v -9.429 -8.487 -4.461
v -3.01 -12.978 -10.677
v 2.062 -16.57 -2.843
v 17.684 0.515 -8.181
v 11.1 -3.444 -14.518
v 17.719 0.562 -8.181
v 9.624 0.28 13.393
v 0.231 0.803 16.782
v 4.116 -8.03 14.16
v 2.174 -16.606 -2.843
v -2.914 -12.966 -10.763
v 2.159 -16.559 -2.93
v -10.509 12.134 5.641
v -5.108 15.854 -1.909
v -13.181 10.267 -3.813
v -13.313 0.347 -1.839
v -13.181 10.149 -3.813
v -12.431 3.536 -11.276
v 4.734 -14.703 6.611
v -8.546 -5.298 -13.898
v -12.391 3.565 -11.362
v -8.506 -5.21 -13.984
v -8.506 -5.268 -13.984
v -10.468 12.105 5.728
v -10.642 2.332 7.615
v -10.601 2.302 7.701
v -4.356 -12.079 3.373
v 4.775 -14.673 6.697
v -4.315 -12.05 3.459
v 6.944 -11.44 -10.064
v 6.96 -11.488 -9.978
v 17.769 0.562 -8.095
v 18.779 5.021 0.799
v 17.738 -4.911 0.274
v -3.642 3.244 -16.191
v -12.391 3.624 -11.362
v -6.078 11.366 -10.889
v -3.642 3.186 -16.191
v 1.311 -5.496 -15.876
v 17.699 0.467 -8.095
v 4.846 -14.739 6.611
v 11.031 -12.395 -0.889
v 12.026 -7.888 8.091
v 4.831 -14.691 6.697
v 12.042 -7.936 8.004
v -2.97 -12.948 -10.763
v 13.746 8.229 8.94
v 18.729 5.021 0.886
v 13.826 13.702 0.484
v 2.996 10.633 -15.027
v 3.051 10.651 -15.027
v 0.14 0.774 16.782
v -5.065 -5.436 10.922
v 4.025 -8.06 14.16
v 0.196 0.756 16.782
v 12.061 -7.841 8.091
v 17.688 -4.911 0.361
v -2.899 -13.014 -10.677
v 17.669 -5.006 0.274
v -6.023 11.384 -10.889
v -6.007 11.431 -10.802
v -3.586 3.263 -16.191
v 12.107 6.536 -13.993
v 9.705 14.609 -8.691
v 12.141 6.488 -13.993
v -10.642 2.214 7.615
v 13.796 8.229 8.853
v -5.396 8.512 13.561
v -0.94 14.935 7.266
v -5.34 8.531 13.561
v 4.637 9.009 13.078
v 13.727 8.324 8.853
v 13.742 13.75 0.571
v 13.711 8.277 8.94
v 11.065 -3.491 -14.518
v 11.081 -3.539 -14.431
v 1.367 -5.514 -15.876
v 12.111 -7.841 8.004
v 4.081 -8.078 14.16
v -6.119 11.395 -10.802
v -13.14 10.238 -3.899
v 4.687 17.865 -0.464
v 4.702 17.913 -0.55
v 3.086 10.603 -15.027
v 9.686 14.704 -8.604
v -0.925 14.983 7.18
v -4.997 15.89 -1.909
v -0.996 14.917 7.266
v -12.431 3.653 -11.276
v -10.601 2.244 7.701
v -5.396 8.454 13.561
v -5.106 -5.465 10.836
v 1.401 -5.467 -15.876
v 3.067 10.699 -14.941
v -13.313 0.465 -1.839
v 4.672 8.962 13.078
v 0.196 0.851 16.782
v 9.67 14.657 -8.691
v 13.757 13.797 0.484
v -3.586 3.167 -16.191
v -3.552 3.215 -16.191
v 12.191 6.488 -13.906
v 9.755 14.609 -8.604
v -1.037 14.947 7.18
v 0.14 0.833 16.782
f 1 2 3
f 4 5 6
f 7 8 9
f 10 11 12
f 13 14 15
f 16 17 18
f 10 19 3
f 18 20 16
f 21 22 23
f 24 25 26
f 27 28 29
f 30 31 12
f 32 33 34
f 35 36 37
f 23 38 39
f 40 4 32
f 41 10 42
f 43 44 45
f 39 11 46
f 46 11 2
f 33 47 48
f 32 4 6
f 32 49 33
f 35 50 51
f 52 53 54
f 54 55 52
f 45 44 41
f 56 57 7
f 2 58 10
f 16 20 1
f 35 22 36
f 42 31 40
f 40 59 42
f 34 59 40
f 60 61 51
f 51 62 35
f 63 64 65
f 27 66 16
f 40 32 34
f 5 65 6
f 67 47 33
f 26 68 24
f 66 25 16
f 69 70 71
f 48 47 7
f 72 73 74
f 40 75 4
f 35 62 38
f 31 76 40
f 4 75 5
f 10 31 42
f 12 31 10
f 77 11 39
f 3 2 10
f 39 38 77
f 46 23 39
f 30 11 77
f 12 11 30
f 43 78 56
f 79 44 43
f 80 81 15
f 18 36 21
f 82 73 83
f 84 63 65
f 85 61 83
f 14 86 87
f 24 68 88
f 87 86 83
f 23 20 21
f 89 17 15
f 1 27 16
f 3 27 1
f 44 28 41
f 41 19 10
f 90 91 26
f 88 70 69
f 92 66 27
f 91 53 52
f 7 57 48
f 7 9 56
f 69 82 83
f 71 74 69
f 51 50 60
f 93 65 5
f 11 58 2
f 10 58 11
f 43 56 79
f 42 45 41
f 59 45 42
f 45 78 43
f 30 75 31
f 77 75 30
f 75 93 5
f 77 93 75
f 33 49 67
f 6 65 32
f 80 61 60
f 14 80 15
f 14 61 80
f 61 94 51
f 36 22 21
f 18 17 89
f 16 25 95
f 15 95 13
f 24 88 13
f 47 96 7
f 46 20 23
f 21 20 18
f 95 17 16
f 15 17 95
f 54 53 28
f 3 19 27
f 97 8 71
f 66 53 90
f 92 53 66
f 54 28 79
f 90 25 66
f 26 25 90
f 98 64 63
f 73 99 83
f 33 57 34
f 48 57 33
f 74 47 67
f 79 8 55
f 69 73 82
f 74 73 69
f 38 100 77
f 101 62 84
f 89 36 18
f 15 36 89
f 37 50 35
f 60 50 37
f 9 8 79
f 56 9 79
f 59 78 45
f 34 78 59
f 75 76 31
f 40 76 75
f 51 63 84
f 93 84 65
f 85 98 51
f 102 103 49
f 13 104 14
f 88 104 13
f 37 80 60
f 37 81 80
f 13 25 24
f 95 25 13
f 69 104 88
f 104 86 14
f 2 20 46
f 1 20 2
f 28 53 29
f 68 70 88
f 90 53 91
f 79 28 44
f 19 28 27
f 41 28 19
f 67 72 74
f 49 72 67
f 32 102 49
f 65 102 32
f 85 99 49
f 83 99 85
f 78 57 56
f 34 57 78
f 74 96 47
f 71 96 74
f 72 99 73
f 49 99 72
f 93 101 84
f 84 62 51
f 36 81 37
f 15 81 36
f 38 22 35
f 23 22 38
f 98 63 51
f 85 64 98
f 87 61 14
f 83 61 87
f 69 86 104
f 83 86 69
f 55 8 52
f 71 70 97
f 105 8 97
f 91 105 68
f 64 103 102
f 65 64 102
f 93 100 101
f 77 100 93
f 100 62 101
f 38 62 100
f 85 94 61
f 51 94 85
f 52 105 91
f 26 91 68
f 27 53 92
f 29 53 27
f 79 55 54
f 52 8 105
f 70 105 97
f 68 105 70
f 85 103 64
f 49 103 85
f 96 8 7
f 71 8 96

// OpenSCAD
// Auto-generated OpenSCAD file

    inner_points = 10*[[1.1000305201583598, -1.229950875030529, -0.08894189251692455], [-0.5027426604470553, 1.579473909815398, -0.1908558995277139], [-0.846549708488417, -0.523909617402483, -1.3897599911510223], [0.01808376162039204, 0.08034171518490725, 1.6695577831956607], [0.1351283573464456, -0.5466570677439849, -1.5789443683117281], [0.9574436533003191, 0.028020099593282485, 1.3306397363982712], [-0.3601557935890146, 0.3215029351915868, -1.6104375284429095], [0.46215950236485903, 0.8961801025288543, 1.2991465762670897], [0.21433774726042953, -1.6511067907648083, -0.284328705476233], [0.4815241834294346, -1.4643828601215962, 0.6610524779902326], [-1.30999013029746, 1.0208149579040204, -0.3812546859455942], [-1.0428036941284546, 1.2075388885472327, 0.5641264975208714], [0.6928698992905247, -1.139259691273304, -0.9977847491226374], [1.2010887016589473, -0.7840896693003617, 0.8004371207145751], [-0.603800841947643, 1.133612704085231, -1.0802349127592135], [-0.09558203957922018, 1.4887827260581734, 0.7179869570779989], [-0.2929413398808356, -1.2918779775559366, -1.0676693641360977], [0.40656183134257406, -0.8030283806190294, 1.4073707065037098], [-1.2350277782105992, 0.35946047840145373, -1.1275729144590714], [-0.5355246069871895, 0.8483100753383608, 1.347467156180736], [1.766851594949058, 0.056206898787851886, -0.8094846211676406], [0.9654650046463505, 1.4609192912108153, -0.8604416246730354], [1.867909776449646, 0.502068104518019, 0.07989439206385895], [1.3726256255141858, 1.3702281074535907, 0.04840123193267751], [1.209110053004979, 0.6488095223171712, -1.3906442403567312], [1.7637877113705789, -0.4911118899577973, 0.027433986645217595], [0.46711697013241127, 1.781760505400738, -0.05501617699135854], [1.104987987925912, -0.3443704721586452, -1.443104645775373], [0.3036013976232044, 1.0603419202643185, -1.4940616492807675], [1.3695617419357062, 0.8229093187079415, 0.8853198397455359], [-0.9347794463333561, -0.8427966545821481, -0.44608283720557035], [-0.5024627112789515, -0.5406709882884531, 1.0835760499677713], [-1.3232575160555382, 0.04057344122178862, -0.18389576051361925], [-1.056071079886533, 0.2272973718650007, 0.7614854229528463], [-0.42750035919209084, -1.2020254677910198, 0.33725782145429417]];

    outer_points = 10*[[-0.7137129435947347, 0.17792343145379144, 1.5043015733227778], [1.3239769119334912, 0.17792343145379144, -1.0096506950540378], [0.21352822928092163, -1.651791935642422, 0.17307580265061], [-0.8237921976196783, 1.2959450727348392, -0.66772668091935], [0.4835667626024947, -1.2238088136169964, 1.035577766580492], [-0.5029835888873913, 1.5796556765245793, 0.23592708566413276], [1.113247557226148, -1.2238088136169964, 0.25872379260460726], [0.12669720573626192, 1.5796556765245793, -0.540926888311752], [-1.1138362715514227, -0.6333738467220617, 1.0780410322808966], [-1.4343859120759834, 0.2775269838144787, 0.8182187759451166], [0.8241219437372267, -0.6333738467220617, -1.3128696542138567], [0.503572303212666, 0.2775269838144787, -1.5726919105496369], [-0.21427005260755239, -0.6883947391266527, 1.5113461431831696], [-0.8239917014414573, 1.0442416020342355, 1.0171348432498628], [1.4342556697802138, -0.6883947391266527, -0.522483964981123], [0.824534020946309, 1.0442416020342355, -1.0166952649144299], [-0.48438908009468373, -1.370308098816377, 0.8316183440855609], [-1.3235989340695444, 1.0144612359087941, 0.1513948459648008], [0.7133349657307877, -1.370308098816377, -0.6460457242335407], [-0.125874888244073, 1.0144612359087941, -1.3262692223543007], [0.853949656636206, 0.5064090455601755, 1.7335725089256413], [1.872794584400319, 0.5064090455601755, 0.4765963747372335], [0.7436708987894836, 1.3727272161406197, 1.2464057788527265], [1.3733516934131367, 1.3727272161406197, 0.46955180487684184], [1.551786471846253, -0.029005028930168097, 1.2578041323229636], [-0.05351685582956189, 0.9163527802772624, 1.6416450205479904], [1.5950088665582043, 0.9163527802772624, -0.3921850876163021], [0.7545987172272076, -0.48537946479352545, 1.6530433740182278], [1.7734436449913207, -0.48537946479352545, 0.39606723982981995], [0.4658851809473687, 1.7826709508577065, 0.37762431649919076], [-0.5833500199011764, -1.1317876660773551, -0.1344638136829207], [-1.1020102333514763, 0.3420808381112755, -0.5548650554679007], [-0.08354328345131035, -0.85030382925131, -0.9535853405670716], [-0.40409292397587104, 0.06059700128523038, -1.2134075969028517], [-1.2127972113579153, -0.3948534139830398, 0.11195887451241493]];

    // Convex hull for inner set (I)
    module inner_hull() {
        hull() {
            for (p = inner_points) {
                translate(p) sphere(r=0.1);
            }
        }
    }

    // Convex hull for outer set (O) minus inner hull (O \ I)
    module outer_minus_inner() {
        difference() {
            hull() {
                for (p = outer_points) {
                    translate(p) sphere(r=0.1);
                }
            }
            inner_hull(); // Subtract inner hull
        }
    }

    // Convex hull for outer set (O) minus all translated inner hulls
    module outer_minus_AllTranslationInner() {
        difference() {
            hull() {
                for (p = outer_points) {
                    translate(p) sphere(r=0.1);
                }
            }
            hull() {
                translate([0,0,50]) inner_hull();
                translate([0,0,-50]) inner_hull();
            }; // Subtract translated inner hulls
        }
    }

    // Difference between outer_minus_inner and outer_minus_AllTranslationInner
    module outer_minus_inner_diff() {
        difference() {
            // Outer minus inner
            difference() {
                hull() {
                    for (p = outer_points) {
                        translate(p) sphere(r=0.1);
                    }
                }
                inner_hull();
            }

            // Subtract Outer minus AllTranslationInner
            difference() {
                hull() {
                    for (p = outer_points) {
                        translate(p) sphere(r=0.1);
                    }
                }
                hull() {
                    translate([0,0,50]) inner_hull();
                    translate([0,0,-50]) inner_hull();
                };
            }
        }
    }

    // Rendering all with colors applied
    color([1, 0, 0, 0.5]) inner_hull(); // Transparent red
    
